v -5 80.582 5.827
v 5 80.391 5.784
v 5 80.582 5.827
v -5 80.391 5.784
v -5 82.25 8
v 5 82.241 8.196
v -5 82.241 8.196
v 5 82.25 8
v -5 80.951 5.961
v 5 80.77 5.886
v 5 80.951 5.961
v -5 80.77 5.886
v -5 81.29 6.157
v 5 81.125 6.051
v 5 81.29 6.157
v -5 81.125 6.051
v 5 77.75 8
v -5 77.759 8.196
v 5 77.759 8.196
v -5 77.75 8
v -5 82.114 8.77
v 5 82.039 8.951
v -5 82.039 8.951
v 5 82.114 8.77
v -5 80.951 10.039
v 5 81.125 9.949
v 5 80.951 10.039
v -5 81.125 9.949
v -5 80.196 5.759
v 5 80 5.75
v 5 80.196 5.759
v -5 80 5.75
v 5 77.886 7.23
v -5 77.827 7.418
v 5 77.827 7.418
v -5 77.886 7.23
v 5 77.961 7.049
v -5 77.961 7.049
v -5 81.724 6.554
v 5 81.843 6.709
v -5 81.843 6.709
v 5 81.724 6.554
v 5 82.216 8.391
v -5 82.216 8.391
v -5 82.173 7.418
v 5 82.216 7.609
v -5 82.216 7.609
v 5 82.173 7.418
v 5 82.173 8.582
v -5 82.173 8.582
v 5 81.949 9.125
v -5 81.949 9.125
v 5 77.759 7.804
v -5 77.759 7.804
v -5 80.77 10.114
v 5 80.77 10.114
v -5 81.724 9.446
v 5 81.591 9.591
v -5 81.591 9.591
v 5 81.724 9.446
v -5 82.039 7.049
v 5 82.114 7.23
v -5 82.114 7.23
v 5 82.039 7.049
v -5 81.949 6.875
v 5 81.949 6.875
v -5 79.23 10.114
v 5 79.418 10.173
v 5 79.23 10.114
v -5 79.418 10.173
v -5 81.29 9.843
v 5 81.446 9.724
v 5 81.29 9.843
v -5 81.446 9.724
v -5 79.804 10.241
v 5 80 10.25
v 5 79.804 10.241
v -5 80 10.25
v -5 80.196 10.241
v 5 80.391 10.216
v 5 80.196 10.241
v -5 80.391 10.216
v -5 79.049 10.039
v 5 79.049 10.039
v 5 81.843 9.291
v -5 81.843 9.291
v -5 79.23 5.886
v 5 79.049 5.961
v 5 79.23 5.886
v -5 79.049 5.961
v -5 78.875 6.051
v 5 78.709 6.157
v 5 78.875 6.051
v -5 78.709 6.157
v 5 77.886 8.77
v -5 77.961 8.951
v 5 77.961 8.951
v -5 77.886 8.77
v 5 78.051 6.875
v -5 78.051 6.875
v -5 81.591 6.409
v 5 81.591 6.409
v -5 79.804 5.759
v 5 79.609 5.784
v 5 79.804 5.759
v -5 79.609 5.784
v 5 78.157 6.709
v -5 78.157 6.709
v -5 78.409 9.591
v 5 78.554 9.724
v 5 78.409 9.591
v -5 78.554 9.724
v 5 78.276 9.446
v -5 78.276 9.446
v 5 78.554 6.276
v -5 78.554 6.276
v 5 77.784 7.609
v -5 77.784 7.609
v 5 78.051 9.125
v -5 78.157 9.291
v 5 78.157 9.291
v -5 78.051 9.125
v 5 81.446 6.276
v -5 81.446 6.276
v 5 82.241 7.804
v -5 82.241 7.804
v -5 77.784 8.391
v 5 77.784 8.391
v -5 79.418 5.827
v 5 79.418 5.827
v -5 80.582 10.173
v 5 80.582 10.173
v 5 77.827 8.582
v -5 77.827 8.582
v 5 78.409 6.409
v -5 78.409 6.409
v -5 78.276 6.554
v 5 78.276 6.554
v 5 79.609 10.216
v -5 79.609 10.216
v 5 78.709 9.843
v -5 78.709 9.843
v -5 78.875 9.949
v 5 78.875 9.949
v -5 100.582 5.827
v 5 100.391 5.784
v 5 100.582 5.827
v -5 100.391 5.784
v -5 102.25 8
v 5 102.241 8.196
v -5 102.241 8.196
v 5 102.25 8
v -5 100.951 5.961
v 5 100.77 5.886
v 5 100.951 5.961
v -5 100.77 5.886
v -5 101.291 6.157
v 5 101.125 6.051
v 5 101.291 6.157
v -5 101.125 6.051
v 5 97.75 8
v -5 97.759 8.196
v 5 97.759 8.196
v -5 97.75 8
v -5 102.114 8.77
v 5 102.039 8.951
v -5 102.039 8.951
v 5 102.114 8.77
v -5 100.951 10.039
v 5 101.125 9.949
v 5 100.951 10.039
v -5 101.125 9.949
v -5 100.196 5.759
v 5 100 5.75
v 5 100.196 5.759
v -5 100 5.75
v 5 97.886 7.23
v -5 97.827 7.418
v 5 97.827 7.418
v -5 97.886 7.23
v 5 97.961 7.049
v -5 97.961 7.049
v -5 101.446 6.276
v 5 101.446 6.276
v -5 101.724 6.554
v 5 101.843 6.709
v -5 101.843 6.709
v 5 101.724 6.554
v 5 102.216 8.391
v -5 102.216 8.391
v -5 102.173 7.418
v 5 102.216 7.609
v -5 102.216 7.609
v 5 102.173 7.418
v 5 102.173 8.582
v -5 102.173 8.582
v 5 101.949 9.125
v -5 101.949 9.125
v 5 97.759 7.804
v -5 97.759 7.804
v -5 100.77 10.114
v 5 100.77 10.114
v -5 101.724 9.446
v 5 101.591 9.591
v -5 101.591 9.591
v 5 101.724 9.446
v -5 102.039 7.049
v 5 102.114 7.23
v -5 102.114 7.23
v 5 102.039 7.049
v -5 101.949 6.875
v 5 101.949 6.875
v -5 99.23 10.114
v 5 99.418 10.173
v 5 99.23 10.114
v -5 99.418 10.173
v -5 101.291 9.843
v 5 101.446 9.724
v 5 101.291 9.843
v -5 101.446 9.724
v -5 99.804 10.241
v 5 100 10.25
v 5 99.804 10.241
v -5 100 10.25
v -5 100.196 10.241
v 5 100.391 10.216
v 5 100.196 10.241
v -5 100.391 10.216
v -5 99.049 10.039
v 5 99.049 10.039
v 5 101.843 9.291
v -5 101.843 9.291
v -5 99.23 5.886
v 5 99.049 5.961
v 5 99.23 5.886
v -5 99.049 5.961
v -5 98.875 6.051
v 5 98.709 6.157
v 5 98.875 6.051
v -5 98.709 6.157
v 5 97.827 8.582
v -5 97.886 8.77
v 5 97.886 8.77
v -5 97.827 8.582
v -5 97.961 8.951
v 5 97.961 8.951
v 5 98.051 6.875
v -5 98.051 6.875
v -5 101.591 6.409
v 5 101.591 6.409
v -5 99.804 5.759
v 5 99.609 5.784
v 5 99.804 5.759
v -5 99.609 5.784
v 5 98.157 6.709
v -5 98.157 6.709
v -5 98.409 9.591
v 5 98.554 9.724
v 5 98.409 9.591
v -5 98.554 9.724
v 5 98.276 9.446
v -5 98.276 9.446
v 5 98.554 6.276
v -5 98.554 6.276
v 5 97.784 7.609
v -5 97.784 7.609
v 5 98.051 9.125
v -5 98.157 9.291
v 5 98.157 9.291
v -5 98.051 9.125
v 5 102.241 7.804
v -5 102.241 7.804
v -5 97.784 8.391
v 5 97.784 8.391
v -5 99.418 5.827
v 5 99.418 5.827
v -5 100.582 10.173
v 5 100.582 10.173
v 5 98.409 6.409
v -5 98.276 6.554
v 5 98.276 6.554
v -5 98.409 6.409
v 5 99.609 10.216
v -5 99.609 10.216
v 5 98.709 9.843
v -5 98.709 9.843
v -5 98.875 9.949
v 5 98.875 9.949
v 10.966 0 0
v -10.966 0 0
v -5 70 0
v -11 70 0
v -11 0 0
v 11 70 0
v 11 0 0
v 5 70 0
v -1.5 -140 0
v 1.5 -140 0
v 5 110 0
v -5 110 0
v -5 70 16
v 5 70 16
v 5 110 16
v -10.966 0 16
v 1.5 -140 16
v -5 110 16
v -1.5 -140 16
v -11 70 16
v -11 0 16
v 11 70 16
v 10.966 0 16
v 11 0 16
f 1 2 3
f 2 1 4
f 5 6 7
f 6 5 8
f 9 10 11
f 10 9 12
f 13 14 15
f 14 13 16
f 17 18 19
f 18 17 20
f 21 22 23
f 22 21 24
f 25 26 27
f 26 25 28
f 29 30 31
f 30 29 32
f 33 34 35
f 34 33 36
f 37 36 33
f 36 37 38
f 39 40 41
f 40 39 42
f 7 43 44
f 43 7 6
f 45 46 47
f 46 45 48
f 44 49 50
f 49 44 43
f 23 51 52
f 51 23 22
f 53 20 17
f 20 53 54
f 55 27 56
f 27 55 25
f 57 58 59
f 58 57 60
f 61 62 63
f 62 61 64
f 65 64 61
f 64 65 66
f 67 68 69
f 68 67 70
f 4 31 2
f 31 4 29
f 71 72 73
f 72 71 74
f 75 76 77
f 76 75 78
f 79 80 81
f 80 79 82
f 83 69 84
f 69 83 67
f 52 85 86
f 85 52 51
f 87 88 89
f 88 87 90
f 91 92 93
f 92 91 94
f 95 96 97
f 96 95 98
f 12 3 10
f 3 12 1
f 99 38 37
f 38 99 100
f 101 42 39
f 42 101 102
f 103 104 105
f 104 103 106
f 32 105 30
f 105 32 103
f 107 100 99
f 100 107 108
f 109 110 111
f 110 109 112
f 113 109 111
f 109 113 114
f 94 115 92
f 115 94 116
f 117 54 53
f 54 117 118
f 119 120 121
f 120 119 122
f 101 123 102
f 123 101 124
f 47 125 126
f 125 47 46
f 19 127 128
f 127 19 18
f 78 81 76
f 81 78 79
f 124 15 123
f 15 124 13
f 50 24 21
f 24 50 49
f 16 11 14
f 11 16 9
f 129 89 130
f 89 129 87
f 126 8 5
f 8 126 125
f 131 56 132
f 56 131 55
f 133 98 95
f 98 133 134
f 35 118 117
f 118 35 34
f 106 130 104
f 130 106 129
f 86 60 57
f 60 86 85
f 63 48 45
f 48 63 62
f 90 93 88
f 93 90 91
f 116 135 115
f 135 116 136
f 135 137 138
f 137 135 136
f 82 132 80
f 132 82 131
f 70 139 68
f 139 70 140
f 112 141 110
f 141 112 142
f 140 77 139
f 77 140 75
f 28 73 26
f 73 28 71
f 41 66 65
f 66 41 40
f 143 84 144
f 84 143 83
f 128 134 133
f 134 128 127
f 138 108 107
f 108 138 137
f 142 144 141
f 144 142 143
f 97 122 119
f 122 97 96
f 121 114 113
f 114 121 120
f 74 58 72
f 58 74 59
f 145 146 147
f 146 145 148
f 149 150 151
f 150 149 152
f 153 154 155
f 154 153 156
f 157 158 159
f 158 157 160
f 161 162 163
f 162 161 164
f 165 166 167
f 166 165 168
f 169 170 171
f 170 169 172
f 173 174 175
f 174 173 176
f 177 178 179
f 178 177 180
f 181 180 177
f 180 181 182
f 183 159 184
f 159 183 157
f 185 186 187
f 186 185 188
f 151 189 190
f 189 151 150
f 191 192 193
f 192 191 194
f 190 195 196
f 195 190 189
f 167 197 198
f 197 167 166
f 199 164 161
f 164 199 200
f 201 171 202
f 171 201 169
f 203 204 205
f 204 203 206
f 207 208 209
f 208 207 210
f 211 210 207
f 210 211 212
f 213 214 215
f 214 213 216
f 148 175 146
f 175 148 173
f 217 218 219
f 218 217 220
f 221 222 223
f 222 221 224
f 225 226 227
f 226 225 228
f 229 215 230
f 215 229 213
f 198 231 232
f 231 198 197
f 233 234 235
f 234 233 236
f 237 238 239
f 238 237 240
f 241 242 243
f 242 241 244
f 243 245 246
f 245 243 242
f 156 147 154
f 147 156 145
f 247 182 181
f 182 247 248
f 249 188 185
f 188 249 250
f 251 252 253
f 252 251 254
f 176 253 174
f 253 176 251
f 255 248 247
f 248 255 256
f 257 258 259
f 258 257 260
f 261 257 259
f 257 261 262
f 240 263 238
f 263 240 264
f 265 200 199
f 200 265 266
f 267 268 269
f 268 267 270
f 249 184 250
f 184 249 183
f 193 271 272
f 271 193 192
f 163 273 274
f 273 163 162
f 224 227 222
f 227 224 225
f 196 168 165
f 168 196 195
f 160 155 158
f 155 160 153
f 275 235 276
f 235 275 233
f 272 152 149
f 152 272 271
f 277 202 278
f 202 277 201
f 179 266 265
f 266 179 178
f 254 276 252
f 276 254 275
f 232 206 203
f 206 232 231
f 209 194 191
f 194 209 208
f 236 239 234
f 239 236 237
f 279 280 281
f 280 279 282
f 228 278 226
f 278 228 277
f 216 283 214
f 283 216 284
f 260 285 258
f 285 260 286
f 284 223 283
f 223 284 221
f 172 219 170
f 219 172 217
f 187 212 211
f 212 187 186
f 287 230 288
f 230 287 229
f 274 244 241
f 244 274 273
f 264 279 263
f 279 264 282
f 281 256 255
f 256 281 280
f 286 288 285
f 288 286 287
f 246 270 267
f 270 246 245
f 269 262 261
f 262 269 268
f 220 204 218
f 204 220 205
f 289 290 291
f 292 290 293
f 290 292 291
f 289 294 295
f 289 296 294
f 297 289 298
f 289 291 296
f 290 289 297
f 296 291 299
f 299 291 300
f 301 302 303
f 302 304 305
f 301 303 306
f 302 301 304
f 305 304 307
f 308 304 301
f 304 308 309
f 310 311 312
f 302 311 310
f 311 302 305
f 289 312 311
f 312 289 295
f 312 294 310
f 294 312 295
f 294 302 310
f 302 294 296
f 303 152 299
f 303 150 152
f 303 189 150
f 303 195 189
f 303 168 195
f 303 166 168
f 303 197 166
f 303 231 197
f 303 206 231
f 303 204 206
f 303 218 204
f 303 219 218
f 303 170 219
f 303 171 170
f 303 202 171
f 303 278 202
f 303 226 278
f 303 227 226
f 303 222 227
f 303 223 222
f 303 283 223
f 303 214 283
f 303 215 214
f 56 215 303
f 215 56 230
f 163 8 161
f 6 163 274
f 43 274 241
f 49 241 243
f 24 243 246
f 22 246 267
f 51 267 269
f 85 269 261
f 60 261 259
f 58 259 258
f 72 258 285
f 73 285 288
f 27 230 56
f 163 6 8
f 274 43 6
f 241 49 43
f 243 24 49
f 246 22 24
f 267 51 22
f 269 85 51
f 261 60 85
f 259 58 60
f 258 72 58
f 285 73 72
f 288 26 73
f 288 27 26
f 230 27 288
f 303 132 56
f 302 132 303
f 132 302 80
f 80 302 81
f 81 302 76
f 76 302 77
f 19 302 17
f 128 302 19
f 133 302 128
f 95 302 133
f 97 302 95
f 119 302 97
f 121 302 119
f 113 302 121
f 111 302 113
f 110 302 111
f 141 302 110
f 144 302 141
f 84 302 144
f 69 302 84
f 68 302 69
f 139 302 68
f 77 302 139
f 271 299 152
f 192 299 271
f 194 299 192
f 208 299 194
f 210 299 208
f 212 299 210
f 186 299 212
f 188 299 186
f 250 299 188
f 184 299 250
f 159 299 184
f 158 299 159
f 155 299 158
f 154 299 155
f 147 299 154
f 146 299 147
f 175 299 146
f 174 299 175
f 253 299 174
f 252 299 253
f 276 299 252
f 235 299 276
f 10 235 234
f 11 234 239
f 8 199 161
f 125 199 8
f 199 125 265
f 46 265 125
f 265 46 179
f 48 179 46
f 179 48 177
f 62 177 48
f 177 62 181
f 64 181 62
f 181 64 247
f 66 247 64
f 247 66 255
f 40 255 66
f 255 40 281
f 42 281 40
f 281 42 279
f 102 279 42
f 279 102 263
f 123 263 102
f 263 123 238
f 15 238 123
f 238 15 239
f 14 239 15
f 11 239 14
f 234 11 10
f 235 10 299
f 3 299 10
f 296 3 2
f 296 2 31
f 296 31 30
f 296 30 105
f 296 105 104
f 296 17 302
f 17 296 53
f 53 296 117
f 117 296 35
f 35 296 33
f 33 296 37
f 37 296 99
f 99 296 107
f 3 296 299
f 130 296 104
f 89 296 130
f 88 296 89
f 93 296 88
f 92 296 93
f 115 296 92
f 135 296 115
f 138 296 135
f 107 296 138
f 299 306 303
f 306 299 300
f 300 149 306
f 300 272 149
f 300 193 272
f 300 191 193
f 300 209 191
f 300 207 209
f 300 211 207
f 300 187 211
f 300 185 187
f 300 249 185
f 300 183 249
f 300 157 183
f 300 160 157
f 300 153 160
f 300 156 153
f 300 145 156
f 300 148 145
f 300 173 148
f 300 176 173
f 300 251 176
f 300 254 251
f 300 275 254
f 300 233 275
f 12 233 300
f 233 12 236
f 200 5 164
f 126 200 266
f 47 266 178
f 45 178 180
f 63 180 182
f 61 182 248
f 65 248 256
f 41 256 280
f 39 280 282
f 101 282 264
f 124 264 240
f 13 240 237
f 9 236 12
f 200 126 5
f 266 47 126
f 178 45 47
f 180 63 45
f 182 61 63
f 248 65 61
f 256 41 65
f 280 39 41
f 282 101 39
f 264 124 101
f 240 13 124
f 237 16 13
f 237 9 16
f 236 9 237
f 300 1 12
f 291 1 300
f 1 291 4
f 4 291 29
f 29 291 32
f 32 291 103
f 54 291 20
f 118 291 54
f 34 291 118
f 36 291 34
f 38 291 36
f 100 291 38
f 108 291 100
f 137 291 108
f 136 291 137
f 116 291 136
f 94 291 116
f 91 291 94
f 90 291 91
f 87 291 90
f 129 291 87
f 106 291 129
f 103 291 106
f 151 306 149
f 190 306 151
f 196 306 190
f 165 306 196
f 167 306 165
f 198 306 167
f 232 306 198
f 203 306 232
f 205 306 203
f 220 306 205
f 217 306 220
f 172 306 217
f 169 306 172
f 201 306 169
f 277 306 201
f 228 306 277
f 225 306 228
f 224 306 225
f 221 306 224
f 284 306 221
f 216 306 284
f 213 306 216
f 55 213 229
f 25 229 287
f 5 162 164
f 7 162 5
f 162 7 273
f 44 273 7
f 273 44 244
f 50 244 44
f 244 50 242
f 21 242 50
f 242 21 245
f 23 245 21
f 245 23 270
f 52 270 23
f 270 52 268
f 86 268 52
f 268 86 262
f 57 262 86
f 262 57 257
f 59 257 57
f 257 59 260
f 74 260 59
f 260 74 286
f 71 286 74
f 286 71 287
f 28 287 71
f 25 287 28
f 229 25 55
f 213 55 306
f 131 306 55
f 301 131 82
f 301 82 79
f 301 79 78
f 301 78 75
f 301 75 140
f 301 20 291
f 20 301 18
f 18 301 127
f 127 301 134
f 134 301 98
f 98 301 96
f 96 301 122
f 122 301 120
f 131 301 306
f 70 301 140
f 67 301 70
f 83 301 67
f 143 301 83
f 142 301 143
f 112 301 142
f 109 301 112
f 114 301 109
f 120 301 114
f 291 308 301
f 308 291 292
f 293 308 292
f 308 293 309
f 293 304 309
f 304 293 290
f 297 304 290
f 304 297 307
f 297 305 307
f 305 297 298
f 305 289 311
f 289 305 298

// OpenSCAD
// file: lib.scad
// Shared pieces for the Winterlight PETG parts (Bambu Lab A1, 256 × 256 × 256 mm).
// Millimetres. Measure your own mounting strip and set strip_w / strip_t on the
// command line (-D strip_w=20) or in OpenSCAD's Customizer before printing.
$fn = 72;
strip_w = 30;   // pixel mounting strip width
strip_t = 1.54; // pixel mounting strip thickness (measured)
clr = 0.4;      // clearance per side, a snug slide fit in PETG
wall = 3;       // channel walls
tie_d = 4.5;    // holes for the 2.5 mm cable ties or an M4 bolt

// Closed slots the strip slides through (the ground strip's posts).
slot_t = strip_t + 2*clr;
slot_w = strip_w + 2*clr;
// Open pockets the strip ends sit in (mini trees, tree hub and ring): a close
// fit across, and a little shallower than the strip, so the strip stands
// proud of the face and the cable tie clamps it down.
proud = 0.3;
pocket_t = strip_t - proud;
pocket_w = strip_w + 2*0.2;
// Outside size of a strip channel: radial depth and tangential width.
ch_depth = pocket_t + wall;
ch_width = pocket_w + 2*wall;

// A channel that holds a strip's end: the strip runs up +Z with its face
// (and its pixels) towards +X. Open on the +X side so the strip drops in,
// with a groove round the outside where a cable tie pulls it home.
module channel(h, floor = 3) {
  z0 = h*0.55;
  difference() {
    translate([-ch_depth, -ch_width/2, 0]) cube([ch_depth, ch_width, h]);
    translate([-pocket_t, -pocket_w/2, floor]) cube([pocket_t + 1, pocket_w, h]);
    // Tie groove, 1 mm deep, round the back and both sides.
    difference() {
      translate([-ch_depth - 1, -ch_width/2 - 1, z0]) cube([ch_depth + 2, ch_width + 2, 5]);
      translate([-ch_depth + 1, -ch_width/2 + 1, z0 - 1]) cube([ch_depth + 2, ch_width - 2, 7]);
    }
  }
}

// n channels on a circle of radius r (the strip's face), leaning by tilt
// degrees: positive leans the top inwards, negative outwards.
module channel_ring(n, r, tilt, h, start = 0) {
  intersection() {
    for (i = [0 : n - 1]) rotate([0, 0, start + 360*i/n])
      translate([r, 0, 0]) rotate([0, -tilt, 0]) channel(h);
    translate([-1000, -1000, 0]) cube([2000, 2000, 1000]);
  }
}

// A flat ring with spokes to a centre boss: the plate that ties the channels together.
module spoked_ring(r_out, r_in, t, n, boss_d, arm_w = 8) {
  difference() { cylinder(r = r_out, h = t); translate([0, 0, -1]) cylinder(r = r_in, h = t + 2); }
  for (i = [0 : n - 1]) rotate([0, 0, 360*i/n + 180/n]) translate([0, -arm_w/2, 0]) cube([r_in + 1, arm_w, t]);
  cylinder(d = boss_d, h = t);
}

// Bricks for ballast: the paving in front of the house is stone, so nothing
// can be staked into it. The feet are trays that hold standard concrete paving
// bricks (betonklinkers, 22 × 11 × 8 cm, about 4 kg each). Set your own size.
brick_l = 220;
brick_w = 110;
brick_h = 80;
brick_clr = 3;      // bricks vary a few millimetres
tray_wall = 1.6;
tray_h = 20;
tray_lip = 10;      // the floor is only a ledge round the edge, to save PETG
tray_floor = 1.6;

// A tray for n bricks side by side along Y, its corner at the origin.
// gap: extra room between the bricks (for a rib); returns nothing, see tray_size.
function tray_inner(n = 1, gap = 0) = [brick_l + 2*brick_clr, n*(brick_w + 2*brick_clr) + gap];
module tray(n = 1, gap = 0) {
  in = tray_inner(n, gap);
  out = [in[0] + 2*tray_wall, in[1] + 2*tray_wall];
  difference() {
    cube([out[0], out[1], tray_h]);
    translate([tray_wall, tray_wall, tray_floor]) cube([in[0], in[1], tray_h]);
    translate([tray_wall + tray_lip, tray_wall + tray_lip, -1]) cube([in[0] - 2*tray_lip, in[1] - 2*tray_lip, tray_floor + 2]);
  }
}
// main file
// Ground strip, lower half of a post: the spike that goes into the ground,
// with a tenon on top for the post. Printed lying on its side, no supports.
// Print Y = up in use, 0 = ground level.
include <lib.scad>
spike = 140;
shoulder = 70;     // above the ground
tenon = 40;
w = 22;
t = 16;
tenon_w = 10;

difference() {
  linear_extrude(t) union() {
    translate([-w/2, 0]) square([w, shoulder]);
    translate([-tenon_w/2, shoulder - 1]) square([tenon_w, tenon + 1]);
    polygon([[-w/2, 0.5], [w/2, 0.5], [1.5, -spike], [-1.5, -spike]]);
  }
  for (y = [shoulder + 10, shoulder + 30]) translate([0, y, t/2]) rotate([0, 90, 0]) cylinder(d = tie_d, h = w + 2, center = true);
}
